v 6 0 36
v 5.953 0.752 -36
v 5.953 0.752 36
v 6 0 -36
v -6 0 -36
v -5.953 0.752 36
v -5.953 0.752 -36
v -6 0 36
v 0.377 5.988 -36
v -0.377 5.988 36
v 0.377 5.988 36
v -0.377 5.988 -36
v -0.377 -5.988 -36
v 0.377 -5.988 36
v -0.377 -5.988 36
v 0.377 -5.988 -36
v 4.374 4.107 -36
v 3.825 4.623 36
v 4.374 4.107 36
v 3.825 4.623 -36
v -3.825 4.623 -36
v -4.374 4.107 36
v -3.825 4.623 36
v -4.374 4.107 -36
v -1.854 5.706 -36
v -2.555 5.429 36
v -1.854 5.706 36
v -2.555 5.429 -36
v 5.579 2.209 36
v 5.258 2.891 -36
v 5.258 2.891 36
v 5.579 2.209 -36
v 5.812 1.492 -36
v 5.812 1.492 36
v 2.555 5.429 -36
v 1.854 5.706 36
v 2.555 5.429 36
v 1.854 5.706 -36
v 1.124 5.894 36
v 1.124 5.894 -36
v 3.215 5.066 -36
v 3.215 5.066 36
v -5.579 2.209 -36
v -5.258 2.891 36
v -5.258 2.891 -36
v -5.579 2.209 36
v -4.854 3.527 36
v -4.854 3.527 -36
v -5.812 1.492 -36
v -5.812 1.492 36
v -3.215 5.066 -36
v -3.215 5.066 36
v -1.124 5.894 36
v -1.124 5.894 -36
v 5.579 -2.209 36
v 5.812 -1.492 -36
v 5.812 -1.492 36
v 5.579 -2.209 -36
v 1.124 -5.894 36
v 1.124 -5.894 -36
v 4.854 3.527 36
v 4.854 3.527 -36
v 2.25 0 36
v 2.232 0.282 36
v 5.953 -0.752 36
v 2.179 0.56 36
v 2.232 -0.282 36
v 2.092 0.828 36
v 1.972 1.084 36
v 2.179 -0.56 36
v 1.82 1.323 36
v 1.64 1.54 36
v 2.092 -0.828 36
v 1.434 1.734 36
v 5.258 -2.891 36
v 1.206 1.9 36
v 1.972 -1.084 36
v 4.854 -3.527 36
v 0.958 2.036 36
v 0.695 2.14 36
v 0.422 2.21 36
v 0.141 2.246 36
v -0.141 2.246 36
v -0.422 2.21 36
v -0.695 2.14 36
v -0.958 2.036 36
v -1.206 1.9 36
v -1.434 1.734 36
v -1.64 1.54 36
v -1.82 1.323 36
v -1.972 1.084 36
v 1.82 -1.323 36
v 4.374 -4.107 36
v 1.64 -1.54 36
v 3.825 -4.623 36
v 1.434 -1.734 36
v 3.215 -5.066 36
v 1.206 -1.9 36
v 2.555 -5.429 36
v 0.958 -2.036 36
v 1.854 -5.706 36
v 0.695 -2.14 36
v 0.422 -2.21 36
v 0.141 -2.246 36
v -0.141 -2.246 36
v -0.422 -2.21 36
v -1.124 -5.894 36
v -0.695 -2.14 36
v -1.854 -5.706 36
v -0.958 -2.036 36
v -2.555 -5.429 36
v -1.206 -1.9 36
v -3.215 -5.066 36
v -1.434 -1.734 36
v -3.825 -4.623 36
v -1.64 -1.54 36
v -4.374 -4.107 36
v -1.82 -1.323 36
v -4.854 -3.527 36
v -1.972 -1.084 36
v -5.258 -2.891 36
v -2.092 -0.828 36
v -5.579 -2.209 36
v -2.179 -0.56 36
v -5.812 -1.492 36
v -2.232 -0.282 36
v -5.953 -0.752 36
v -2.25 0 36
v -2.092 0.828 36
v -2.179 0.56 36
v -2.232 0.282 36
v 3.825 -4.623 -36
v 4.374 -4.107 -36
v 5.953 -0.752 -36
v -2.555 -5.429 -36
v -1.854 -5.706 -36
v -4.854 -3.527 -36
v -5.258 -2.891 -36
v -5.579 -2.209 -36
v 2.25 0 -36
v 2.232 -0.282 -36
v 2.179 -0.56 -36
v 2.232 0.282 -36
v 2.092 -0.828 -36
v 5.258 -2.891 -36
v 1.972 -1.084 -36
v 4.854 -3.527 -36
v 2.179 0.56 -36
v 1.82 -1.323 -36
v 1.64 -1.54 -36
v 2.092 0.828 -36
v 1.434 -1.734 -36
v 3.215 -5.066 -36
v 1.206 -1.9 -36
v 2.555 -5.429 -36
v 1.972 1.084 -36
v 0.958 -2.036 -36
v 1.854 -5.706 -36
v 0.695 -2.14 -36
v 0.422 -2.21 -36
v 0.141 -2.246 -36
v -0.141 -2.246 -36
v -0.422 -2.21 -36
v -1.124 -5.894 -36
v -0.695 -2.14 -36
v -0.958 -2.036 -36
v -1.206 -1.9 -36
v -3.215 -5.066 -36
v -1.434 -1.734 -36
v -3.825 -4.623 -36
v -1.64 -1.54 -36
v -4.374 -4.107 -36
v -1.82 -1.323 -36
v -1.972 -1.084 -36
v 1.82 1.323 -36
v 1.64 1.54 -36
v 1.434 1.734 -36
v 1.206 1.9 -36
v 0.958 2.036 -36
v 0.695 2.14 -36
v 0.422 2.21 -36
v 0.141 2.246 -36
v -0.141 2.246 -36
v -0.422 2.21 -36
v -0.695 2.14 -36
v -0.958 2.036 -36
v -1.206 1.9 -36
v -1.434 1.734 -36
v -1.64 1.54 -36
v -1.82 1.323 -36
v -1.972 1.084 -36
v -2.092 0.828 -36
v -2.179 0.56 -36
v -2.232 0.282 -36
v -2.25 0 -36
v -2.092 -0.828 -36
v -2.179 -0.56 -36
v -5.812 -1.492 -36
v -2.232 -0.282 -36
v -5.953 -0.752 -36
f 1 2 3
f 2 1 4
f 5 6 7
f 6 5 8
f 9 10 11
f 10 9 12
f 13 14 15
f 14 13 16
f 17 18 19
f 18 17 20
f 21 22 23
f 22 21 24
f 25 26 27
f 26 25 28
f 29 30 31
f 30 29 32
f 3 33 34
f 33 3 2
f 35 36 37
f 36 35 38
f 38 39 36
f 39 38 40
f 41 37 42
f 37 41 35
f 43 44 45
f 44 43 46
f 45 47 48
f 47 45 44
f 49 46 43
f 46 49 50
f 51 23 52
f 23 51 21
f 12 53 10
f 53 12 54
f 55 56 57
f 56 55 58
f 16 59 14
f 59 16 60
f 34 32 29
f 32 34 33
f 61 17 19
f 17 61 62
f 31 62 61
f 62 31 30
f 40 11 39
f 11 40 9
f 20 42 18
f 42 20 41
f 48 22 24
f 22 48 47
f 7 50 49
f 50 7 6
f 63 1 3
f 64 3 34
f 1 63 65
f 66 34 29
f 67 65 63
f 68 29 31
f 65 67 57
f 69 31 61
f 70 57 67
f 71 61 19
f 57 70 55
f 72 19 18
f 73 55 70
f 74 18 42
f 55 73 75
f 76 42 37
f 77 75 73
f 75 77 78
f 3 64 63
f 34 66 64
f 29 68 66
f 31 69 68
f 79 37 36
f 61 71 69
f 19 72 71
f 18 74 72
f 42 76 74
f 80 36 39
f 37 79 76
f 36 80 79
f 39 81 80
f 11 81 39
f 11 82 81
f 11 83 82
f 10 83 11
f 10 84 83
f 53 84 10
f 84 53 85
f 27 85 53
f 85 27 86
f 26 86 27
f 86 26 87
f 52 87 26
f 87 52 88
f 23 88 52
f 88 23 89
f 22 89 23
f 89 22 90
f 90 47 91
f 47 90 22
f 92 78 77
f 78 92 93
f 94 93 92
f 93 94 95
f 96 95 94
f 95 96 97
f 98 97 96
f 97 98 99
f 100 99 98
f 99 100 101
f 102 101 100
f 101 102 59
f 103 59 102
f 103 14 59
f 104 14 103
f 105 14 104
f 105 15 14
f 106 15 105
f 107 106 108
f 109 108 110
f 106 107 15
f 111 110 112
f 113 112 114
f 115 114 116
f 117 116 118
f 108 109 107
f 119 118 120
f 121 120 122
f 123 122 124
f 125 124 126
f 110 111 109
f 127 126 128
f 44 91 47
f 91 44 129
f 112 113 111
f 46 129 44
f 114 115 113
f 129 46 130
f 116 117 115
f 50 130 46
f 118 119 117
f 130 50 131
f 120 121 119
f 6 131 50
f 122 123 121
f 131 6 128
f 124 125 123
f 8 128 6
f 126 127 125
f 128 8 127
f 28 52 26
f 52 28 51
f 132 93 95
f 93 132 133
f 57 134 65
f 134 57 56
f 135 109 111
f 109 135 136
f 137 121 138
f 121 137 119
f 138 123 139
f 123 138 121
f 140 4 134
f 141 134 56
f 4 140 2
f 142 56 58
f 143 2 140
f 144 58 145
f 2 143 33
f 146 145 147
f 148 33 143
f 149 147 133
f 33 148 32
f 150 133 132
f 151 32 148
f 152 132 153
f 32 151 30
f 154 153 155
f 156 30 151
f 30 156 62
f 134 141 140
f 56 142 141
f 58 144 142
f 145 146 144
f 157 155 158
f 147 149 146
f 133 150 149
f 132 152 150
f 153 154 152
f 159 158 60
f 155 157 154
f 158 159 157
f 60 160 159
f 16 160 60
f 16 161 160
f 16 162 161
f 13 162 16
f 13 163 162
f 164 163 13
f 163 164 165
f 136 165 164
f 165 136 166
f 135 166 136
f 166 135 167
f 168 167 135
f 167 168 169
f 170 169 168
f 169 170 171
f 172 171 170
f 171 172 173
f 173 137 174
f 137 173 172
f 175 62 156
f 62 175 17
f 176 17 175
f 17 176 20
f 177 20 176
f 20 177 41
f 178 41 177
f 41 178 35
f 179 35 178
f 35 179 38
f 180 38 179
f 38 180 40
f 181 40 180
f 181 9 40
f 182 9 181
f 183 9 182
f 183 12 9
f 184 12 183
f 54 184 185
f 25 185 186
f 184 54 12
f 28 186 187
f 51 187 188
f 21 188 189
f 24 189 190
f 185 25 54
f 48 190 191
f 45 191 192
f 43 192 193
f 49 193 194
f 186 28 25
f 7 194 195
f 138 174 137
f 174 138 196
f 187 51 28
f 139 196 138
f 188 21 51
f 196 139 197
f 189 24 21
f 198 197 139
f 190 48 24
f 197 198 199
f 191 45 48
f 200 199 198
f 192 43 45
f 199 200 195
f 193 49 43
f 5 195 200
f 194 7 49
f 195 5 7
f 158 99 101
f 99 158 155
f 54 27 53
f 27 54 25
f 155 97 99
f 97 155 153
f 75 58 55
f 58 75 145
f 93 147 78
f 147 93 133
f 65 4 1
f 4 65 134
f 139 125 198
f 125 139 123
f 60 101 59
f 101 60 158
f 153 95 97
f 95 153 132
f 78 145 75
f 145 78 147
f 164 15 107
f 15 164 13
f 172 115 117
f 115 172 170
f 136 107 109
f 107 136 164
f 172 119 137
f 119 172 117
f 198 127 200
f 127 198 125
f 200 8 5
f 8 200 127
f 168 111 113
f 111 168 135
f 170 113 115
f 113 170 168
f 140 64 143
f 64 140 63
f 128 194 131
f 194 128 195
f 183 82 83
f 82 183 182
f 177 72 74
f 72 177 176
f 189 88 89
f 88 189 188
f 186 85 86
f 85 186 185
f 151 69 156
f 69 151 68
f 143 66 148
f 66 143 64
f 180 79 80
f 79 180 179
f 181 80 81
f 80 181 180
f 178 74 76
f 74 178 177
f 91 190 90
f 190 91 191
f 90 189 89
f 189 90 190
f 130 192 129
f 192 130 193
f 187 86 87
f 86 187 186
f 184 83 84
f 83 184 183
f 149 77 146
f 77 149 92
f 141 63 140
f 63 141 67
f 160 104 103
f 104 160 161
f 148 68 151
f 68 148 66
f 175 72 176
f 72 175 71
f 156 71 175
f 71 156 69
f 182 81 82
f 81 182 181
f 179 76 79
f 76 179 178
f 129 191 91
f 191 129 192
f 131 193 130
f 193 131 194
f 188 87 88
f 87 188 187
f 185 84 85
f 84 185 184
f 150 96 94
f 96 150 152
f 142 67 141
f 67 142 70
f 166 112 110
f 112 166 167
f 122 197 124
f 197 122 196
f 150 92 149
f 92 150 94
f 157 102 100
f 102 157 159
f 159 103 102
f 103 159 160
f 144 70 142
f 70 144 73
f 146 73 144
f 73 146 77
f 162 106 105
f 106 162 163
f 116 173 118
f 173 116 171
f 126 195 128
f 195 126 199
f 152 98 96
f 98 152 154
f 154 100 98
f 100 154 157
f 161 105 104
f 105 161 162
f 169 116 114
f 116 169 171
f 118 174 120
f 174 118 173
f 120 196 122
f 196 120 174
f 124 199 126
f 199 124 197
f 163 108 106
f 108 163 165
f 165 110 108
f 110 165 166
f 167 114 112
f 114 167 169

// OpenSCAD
$fn = 50;


difference() {
	union() {
		translate(v = [0, 0, -36.0000000000]) {
			cylinder(h = 72, r = 6.0000000000);
		}
	}
	union() {
		translate(v = [0, 0, -100.0000000000]) {
			cylinder(h = 200, r = 2.2500000000);
		}
	}
}
